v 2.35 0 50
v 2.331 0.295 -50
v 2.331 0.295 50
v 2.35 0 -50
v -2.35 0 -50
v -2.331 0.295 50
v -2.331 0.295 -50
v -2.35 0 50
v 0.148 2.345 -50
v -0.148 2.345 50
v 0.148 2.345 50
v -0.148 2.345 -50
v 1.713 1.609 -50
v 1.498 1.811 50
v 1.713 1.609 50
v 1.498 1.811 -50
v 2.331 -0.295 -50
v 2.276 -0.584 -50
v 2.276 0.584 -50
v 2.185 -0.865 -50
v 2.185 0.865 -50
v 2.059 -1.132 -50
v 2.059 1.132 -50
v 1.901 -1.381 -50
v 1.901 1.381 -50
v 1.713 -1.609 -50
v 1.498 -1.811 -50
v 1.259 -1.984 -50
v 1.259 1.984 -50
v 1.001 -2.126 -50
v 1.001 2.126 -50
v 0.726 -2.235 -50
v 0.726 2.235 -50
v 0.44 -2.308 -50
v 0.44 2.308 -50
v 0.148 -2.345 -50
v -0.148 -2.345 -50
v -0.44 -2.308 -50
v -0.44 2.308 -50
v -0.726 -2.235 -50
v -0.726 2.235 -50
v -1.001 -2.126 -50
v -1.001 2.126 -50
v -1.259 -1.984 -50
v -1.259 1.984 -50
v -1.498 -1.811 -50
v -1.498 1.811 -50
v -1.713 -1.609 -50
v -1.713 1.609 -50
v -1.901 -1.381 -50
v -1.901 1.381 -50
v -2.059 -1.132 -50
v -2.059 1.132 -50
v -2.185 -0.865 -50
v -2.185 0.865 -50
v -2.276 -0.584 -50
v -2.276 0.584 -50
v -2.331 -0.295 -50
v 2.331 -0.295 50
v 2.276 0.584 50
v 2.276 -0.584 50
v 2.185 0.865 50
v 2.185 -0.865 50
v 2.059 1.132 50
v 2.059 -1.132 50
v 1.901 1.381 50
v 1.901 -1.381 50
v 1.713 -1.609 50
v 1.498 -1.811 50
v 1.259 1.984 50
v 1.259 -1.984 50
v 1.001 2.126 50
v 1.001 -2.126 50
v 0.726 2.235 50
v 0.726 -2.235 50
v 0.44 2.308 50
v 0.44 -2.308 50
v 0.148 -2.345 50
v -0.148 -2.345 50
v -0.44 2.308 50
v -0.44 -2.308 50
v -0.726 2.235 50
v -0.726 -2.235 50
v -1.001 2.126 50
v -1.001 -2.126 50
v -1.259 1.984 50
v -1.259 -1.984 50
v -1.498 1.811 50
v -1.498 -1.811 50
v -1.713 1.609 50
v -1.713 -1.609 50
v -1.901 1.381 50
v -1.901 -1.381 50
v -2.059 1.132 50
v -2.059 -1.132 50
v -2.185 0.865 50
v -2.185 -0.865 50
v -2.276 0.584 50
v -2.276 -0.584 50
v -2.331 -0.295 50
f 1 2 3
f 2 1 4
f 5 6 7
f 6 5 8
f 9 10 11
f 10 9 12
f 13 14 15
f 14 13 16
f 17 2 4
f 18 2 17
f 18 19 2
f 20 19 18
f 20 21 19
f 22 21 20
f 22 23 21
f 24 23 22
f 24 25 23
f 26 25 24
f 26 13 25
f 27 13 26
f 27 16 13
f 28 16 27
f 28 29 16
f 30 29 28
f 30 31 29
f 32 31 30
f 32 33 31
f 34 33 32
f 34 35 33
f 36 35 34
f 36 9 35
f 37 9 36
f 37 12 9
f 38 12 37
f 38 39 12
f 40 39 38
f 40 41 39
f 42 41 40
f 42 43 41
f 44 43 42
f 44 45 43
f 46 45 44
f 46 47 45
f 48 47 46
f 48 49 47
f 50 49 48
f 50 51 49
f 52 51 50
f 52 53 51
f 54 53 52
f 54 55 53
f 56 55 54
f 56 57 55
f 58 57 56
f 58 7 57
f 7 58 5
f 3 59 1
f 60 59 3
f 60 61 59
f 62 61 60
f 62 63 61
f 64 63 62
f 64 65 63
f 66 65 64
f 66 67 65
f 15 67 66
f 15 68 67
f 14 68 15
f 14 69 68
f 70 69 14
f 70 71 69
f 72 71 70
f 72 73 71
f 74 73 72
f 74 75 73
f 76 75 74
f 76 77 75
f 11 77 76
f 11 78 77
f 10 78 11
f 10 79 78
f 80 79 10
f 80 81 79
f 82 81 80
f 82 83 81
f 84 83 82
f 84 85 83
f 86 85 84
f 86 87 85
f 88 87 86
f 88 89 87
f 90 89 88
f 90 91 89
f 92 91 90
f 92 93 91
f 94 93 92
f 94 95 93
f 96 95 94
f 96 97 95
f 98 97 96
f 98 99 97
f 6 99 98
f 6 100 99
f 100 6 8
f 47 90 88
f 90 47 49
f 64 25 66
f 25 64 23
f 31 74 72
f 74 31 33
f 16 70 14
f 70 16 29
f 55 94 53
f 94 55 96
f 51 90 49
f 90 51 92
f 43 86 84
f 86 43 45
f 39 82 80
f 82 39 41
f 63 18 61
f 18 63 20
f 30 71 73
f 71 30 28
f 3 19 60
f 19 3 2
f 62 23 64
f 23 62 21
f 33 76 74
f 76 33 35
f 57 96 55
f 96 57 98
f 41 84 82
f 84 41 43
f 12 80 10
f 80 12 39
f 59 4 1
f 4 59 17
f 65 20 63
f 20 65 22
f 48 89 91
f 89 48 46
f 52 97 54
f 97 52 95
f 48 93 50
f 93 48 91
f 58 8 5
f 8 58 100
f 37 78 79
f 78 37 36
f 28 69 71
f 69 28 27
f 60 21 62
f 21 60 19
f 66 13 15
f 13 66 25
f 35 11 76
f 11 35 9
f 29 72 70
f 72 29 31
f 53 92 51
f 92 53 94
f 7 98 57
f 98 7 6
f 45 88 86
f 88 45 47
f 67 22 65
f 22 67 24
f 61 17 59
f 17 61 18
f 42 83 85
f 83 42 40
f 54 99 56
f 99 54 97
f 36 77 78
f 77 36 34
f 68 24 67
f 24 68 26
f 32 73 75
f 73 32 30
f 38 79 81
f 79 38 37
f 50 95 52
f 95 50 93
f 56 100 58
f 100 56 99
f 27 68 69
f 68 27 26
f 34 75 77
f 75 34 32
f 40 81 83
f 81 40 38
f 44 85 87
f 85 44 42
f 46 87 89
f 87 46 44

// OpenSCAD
$fn = 50;


difference() {
	union() {
		translate(v = [0, 0, -50.0000000000]) {
			cylinder(h = 100, r = 2.3500000000);
		}
	}
	union() {
		translate(v = [0, 0, -100.0000000000]) {
			cylinder(h = 200, r = 0);
		}
	}
}
